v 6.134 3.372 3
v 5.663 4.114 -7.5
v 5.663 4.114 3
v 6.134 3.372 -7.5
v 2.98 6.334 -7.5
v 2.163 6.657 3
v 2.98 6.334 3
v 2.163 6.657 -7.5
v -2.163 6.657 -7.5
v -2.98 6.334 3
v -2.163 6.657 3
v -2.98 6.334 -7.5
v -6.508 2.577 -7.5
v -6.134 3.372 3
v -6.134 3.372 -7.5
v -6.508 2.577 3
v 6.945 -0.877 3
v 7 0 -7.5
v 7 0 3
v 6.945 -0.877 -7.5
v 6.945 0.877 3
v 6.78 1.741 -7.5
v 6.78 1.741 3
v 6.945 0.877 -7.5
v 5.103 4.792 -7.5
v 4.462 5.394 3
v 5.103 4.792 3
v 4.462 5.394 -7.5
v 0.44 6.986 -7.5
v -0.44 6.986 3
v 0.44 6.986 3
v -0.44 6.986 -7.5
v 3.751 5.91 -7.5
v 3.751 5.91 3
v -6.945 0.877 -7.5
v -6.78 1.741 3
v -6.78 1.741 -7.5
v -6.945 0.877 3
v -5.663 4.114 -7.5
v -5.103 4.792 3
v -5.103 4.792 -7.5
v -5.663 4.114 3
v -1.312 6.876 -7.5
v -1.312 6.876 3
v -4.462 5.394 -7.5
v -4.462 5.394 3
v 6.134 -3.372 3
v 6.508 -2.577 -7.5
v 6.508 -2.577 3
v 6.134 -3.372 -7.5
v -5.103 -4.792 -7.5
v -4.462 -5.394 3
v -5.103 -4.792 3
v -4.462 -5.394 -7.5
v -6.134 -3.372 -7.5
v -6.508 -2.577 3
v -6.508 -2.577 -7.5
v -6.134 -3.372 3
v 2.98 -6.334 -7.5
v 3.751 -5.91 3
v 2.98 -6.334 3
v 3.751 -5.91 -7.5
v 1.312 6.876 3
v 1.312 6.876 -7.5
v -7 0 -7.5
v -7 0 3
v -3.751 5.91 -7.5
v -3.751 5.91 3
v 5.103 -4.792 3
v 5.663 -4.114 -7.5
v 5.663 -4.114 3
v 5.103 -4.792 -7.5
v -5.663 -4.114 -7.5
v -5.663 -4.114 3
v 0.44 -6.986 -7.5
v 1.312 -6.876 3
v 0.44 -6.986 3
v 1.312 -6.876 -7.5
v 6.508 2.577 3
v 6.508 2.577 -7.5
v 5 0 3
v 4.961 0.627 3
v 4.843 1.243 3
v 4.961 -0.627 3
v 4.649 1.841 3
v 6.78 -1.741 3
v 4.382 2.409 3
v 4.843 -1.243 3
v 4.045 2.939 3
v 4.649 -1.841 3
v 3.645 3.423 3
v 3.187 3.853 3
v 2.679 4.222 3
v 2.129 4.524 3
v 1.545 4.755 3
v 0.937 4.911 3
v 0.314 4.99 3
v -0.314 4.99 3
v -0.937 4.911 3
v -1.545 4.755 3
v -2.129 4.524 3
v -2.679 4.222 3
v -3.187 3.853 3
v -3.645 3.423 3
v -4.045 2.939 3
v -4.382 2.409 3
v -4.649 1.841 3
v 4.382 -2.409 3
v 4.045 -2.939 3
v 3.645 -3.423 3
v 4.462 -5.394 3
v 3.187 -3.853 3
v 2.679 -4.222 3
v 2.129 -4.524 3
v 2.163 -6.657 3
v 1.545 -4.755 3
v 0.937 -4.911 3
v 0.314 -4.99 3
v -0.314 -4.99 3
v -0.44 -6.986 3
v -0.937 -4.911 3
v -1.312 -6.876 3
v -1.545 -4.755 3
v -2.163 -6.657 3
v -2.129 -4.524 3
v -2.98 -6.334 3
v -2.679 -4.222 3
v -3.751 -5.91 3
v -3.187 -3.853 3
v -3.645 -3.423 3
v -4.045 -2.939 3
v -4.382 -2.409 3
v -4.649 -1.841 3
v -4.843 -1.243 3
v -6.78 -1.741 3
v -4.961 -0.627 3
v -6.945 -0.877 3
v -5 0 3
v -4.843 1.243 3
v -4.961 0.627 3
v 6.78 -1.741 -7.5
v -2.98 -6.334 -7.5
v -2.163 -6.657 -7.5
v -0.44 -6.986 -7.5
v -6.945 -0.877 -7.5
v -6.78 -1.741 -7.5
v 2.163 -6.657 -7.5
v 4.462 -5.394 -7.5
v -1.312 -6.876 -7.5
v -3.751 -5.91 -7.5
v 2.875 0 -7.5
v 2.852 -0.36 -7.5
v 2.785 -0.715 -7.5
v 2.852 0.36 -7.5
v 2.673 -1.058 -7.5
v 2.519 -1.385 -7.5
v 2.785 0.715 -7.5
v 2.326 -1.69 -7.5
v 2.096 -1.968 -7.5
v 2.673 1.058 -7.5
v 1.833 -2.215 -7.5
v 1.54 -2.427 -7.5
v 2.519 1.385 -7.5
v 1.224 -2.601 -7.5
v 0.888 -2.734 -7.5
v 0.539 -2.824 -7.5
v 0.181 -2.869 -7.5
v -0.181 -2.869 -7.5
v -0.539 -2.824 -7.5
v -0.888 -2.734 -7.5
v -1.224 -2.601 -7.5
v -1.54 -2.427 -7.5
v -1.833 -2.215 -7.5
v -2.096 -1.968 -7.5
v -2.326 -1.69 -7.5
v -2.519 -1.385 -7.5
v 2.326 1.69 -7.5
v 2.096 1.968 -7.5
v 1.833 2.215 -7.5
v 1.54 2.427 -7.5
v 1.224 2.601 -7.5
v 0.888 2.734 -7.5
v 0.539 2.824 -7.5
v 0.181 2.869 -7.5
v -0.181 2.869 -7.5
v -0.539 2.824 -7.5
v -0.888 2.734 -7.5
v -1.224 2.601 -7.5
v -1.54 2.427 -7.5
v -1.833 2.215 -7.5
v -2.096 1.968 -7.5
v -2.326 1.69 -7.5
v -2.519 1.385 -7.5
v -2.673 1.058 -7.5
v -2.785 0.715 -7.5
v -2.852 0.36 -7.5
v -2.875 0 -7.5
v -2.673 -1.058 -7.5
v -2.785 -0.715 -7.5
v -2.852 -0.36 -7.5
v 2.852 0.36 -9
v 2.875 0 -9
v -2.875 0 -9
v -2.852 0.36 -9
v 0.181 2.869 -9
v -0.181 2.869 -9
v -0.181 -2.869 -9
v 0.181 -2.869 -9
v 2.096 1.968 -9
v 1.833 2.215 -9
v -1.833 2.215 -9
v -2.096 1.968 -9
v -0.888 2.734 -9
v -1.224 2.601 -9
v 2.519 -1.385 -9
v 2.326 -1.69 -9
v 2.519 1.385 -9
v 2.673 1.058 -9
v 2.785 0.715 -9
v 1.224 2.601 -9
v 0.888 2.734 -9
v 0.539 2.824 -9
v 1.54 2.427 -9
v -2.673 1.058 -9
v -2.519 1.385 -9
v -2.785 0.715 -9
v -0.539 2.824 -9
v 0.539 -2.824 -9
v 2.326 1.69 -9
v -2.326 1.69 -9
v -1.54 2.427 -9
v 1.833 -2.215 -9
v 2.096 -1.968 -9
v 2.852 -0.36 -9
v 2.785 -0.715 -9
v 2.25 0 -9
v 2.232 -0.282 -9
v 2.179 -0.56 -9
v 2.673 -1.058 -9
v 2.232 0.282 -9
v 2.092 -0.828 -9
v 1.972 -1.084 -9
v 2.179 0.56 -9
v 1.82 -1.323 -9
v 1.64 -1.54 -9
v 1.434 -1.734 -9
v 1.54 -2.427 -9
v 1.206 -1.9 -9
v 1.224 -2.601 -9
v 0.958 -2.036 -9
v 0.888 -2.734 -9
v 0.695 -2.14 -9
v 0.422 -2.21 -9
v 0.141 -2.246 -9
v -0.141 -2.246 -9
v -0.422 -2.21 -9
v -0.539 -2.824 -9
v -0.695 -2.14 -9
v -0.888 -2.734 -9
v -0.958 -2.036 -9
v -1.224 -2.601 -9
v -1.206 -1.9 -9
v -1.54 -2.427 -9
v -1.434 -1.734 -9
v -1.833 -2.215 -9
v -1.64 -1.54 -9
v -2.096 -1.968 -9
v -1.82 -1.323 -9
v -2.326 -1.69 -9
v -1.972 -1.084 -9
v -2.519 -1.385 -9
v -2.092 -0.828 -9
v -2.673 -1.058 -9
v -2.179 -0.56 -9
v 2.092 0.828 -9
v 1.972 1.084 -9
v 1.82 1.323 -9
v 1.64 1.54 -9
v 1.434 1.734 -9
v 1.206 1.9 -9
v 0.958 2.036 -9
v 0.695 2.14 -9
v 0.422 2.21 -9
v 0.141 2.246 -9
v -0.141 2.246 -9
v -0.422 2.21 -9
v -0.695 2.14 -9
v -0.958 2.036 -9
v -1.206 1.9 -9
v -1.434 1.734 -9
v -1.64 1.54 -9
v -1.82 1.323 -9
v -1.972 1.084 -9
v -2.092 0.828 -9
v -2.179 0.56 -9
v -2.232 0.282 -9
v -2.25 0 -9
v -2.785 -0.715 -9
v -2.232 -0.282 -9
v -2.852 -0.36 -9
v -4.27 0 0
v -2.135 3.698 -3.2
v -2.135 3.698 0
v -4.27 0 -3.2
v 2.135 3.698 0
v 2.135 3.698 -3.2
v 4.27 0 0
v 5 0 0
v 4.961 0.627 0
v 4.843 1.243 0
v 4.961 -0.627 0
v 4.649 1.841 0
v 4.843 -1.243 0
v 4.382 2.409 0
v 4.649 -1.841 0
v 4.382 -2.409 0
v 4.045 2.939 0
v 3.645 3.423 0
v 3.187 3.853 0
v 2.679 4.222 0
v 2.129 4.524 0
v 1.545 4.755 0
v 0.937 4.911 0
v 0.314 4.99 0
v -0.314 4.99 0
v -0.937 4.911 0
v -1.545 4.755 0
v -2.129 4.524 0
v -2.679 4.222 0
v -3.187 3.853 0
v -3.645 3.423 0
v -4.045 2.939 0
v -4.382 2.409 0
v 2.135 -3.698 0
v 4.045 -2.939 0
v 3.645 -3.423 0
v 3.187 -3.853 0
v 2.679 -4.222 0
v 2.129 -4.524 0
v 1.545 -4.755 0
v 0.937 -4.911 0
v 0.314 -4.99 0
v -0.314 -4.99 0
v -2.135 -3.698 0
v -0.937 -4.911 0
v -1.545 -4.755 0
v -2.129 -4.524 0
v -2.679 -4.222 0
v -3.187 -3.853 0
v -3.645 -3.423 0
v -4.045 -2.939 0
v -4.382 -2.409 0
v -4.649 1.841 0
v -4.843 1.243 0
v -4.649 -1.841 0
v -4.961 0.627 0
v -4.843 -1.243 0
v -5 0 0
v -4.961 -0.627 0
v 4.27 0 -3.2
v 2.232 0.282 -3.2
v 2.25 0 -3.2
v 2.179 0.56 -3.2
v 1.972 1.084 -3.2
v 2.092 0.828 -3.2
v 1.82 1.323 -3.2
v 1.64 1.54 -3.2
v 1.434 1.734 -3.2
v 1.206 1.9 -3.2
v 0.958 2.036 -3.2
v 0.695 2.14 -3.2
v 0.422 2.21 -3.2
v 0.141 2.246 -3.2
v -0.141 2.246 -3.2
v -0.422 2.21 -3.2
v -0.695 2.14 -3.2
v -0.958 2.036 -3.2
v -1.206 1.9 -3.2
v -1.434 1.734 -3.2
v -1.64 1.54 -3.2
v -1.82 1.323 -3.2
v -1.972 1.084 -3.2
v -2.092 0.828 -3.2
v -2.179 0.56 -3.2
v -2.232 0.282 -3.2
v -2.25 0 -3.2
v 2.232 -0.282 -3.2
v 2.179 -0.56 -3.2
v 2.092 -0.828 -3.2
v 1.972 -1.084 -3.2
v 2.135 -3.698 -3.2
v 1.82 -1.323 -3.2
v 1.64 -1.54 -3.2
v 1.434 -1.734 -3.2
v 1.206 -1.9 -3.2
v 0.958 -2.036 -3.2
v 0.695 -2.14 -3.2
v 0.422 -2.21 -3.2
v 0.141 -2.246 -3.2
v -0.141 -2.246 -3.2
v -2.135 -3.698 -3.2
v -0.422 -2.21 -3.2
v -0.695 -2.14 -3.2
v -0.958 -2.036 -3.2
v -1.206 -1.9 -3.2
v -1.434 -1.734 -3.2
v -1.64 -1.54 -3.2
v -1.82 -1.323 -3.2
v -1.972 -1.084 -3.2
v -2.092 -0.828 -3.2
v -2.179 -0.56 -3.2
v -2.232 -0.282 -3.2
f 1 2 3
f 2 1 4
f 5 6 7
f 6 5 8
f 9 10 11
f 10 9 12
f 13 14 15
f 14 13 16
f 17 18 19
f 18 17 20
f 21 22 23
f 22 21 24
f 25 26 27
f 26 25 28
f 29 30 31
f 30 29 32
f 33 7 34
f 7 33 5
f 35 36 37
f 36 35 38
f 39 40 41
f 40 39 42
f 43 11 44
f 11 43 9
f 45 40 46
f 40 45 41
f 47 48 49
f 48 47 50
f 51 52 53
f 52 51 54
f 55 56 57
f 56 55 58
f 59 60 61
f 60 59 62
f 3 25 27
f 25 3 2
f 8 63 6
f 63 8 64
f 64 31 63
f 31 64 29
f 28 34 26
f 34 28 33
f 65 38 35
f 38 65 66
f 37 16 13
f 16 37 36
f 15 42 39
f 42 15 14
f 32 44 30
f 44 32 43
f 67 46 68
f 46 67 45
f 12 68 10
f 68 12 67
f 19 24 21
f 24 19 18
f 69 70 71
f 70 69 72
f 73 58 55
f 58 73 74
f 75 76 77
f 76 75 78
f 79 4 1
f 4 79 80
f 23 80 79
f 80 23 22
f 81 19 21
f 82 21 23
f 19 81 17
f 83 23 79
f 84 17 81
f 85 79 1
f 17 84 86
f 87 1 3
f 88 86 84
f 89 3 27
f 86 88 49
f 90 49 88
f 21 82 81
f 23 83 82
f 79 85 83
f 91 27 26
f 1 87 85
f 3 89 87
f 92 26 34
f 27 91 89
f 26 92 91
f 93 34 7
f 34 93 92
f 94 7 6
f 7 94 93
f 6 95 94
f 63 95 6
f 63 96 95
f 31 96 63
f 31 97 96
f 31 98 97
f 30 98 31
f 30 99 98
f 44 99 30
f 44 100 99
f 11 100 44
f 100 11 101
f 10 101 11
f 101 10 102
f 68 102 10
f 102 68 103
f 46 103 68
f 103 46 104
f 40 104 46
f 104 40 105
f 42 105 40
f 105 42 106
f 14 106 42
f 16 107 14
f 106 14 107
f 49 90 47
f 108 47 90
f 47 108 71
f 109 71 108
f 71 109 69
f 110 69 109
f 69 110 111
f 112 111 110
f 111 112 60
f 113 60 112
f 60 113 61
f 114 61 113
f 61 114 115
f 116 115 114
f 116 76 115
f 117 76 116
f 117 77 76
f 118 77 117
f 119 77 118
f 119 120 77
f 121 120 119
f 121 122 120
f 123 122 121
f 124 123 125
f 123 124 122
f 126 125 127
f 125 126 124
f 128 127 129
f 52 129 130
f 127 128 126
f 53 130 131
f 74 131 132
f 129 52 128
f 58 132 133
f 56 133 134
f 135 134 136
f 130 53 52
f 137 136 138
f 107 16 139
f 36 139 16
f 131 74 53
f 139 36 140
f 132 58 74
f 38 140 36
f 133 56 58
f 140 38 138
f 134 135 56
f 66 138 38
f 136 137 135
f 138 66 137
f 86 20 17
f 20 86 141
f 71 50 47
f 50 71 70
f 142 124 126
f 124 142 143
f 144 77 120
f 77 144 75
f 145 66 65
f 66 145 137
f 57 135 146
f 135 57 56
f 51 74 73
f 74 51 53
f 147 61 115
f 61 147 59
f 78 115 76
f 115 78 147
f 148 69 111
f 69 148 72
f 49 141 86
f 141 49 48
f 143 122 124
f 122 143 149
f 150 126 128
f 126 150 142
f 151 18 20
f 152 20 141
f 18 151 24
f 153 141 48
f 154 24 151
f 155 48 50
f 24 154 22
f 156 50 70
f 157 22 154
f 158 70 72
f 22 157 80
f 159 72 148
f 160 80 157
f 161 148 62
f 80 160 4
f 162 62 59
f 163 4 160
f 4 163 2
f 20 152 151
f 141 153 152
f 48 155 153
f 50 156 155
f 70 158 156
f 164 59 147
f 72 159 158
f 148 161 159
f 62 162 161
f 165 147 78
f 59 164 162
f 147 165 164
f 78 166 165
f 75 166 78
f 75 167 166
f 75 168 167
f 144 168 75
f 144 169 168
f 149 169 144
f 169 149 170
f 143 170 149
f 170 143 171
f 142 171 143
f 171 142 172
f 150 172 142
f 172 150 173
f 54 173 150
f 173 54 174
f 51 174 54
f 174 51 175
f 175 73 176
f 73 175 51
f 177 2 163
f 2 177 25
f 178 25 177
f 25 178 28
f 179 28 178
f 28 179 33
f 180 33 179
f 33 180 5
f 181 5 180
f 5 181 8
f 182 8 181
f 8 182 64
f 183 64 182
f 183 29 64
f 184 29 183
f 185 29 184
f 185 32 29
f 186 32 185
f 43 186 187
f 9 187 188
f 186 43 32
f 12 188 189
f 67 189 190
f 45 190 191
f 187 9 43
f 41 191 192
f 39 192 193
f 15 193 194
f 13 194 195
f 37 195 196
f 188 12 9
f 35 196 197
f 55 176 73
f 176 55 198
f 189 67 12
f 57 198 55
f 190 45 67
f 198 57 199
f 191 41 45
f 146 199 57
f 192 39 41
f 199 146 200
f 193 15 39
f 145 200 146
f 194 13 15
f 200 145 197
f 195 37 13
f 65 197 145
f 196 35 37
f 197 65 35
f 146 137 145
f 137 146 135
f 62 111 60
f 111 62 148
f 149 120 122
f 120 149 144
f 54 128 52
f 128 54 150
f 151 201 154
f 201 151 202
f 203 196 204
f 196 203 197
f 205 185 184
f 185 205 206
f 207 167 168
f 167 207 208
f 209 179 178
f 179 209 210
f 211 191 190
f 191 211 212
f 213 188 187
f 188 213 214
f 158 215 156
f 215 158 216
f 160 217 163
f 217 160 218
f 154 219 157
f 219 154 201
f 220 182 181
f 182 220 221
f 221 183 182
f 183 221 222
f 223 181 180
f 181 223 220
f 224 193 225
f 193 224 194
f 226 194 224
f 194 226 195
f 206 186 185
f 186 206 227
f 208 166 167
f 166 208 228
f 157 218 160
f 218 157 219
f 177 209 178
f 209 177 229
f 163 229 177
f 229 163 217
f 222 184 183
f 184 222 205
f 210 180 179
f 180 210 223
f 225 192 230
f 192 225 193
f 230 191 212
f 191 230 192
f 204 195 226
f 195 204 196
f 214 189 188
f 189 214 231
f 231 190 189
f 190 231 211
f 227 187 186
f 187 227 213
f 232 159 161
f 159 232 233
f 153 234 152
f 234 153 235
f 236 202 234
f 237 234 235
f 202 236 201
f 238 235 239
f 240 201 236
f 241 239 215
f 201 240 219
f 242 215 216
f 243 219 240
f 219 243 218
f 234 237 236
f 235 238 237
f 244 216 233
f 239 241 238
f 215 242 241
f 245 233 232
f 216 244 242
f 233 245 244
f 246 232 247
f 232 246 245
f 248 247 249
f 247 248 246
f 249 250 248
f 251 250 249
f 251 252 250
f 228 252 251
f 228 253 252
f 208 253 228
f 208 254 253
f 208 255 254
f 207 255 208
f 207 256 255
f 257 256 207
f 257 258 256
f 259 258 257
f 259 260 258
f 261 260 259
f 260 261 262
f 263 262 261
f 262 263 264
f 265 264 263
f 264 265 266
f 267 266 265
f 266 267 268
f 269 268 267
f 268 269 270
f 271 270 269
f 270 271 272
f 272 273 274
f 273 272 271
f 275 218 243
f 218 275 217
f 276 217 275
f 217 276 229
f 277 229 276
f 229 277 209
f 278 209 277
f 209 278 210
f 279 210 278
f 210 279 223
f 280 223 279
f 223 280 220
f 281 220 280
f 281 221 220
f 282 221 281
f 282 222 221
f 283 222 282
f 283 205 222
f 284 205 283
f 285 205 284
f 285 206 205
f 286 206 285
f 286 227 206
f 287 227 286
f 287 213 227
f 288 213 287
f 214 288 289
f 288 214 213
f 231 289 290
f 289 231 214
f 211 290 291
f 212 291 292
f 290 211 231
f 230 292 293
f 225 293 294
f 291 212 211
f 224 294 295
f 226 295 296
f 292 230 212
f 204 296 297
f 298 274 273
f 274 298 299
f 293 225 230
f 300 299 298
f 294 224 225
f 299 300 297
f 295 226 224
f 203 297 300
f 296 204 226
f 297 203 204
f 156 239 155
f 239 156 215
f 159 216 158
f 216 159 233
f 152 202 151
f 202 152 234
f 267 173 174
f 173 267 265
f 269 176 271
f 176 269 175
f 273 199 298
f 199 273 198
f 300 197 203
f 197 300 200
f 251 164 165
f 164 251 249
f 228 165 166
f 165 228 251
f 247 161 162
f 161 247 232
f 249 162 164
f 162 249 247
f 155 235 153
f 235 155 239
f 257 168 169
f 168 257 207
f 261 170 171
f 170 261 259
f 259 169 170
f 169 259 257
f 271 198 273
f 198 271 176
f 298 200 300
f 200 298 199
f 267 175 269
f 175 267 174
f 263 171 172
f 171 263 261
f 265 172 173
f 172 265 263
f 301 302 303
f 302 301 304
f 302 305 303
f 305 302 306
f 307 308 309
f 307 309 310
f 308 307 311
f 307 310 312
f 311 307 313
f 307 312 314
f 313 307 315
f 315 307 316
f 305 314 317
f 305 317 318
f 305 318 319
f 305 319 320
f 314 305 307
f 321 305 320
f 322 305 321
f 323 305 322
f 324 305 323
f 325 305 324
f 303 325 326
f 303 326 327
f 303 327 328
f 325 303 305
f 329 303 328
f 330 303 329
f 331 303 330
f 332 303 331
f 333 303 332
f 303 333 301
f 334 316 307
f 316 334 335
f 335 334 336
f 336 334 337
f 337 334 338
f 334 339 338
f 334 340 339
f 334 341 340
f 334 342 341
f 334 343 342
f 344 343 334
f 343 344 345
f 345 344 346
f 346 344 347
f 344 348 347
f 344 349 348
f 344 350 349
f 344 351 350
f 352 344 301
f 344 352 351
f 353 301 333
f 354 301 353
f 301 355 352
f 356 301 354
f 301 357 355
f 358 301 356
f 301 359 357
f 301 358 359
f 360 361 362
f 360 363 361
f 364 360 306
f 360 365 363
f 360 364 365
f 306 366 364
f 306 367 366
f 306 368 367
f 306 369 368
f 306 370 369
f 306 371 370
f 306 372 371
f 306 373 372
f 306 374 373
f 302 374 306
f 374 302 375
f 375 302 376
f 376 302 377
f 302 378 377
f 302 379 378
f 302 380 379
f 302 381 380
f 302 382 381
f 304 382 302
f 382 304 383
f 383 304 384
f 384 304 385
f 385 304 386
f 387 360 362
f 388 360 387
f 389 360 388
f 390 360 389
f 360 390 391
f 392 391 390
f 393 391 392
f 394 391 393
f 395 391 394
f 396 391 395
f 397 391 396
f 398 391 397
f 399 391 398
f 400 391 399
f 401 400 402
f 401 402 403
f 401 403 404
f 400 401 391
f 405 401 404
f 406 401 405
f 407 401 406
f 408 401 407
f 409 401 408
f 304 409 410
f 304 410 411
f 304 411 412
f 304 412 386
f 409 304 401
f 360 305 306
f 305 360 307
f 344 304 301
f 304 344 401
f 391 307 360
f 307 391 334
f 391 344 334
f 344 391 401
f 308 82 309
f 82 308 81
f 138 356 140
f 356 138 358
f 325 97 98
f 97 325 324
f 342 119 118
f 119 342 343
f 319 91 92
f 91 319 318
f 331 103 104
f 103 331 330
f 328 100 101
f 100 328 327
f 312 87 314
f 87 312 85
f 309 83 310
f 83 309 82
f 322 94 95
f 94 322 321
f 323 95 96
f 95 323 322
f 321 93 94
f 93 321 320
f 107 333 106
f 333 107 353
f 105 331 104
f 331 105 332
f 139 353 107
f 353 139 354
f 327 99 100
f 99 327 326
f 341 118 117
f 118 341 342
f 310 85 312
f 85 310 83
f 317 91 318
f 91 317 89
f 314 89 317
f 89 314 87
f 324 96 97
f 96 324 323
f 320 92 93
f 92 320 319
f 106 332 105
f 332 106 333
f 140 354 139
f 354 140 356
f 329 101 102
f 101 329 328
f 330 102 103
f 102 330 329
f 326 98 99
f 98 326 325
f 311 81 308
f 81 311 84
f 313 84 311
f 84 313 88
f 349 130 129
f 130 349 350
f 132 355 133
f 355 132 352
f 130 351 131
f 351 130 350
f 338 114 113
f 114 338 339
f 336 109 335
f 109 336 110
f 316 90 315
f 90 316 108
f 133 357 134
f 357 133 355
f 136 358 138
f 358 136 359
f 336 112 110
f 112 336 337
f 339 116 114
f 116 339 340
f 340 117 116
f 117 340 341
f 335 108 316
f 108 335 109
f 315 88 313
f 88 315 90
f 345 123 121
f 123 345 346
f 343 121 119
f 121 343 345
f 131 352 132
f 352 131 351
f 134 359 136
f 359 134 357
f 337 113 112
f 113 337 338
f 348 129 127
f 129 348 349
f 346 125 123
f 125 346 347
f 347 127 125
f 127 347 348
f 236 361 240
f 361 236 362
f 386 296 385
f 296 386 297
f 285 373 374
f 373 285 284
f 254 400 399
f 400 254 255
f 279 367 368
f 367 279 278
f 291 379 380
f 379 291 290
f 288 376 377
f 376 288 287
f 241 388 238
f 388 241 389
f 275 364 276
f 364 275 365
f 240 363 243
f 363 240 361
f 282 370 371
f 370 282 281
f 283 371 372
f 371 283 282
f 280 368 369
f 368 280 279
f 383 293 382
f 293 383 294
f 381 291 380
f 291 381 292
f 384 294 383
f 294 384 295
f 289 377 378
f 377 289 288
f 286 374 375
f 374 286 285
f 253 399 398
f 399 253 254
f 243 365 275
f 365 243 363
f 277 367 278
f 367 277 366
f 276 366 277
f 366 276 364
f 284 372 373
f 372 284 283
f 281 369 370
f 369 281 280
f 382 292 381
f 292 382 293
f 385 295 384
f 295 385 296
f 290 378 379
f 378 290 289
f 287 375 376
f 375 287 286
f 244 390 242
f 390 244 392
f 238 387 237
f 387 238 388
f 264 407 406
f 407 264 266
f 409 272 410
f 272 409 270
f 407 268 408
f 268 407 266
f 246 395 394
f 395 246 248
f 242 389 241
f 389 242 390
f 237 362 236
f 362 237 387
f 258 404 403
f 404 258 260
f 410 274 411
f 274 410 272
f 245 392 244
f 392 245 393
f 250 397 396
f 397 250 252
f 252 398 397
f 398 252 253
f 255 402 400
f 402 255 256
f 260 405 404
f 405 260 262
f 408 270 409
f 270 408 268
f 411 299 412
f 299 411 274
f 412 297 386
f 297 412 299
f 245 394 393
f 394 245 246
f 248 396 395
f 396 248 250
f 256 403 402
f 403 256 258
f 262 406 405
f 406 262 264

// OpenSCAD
$fn = 50;


difference() {
	union() {
		translate(v = [0, 0, -7.5000000000]) {
			cylinder(h = 10.5000000000, r = 7.0000000000);
		}
		#translate(v = [0, 0, -9.0000000000]) {
			cylinder(h = 9, r = 2.8750000000);
		}
	}
	union() {
		translate(v = [0, 0, 0]) {
			rotate(a = [0, 0, 0]) {
				difference() {
					union() {
						translate(v = [0, 0, -3.2000000000]) {
							linear_extrude(height = 3.2000000000) {
								polygon(points = [[4.2698000000, 0.0000000000], [2.1349000000, 3.6977552691], [-2.1349000000, 3.6977552691], [-4.2698000000, 0.0000000000], [-2.1349000000, -3.6977552691], [2.1349000000, -3.6977552691]]);
							}
						}
					}
					union();
				}
			}
		}
		#cylinder(h = 3, r = 5.0000000000);
		#translate(v = [0, 0, -100.0000000000]) {
			cylinder(h = 200, r = 2.2500000000);
		}
	}
}
